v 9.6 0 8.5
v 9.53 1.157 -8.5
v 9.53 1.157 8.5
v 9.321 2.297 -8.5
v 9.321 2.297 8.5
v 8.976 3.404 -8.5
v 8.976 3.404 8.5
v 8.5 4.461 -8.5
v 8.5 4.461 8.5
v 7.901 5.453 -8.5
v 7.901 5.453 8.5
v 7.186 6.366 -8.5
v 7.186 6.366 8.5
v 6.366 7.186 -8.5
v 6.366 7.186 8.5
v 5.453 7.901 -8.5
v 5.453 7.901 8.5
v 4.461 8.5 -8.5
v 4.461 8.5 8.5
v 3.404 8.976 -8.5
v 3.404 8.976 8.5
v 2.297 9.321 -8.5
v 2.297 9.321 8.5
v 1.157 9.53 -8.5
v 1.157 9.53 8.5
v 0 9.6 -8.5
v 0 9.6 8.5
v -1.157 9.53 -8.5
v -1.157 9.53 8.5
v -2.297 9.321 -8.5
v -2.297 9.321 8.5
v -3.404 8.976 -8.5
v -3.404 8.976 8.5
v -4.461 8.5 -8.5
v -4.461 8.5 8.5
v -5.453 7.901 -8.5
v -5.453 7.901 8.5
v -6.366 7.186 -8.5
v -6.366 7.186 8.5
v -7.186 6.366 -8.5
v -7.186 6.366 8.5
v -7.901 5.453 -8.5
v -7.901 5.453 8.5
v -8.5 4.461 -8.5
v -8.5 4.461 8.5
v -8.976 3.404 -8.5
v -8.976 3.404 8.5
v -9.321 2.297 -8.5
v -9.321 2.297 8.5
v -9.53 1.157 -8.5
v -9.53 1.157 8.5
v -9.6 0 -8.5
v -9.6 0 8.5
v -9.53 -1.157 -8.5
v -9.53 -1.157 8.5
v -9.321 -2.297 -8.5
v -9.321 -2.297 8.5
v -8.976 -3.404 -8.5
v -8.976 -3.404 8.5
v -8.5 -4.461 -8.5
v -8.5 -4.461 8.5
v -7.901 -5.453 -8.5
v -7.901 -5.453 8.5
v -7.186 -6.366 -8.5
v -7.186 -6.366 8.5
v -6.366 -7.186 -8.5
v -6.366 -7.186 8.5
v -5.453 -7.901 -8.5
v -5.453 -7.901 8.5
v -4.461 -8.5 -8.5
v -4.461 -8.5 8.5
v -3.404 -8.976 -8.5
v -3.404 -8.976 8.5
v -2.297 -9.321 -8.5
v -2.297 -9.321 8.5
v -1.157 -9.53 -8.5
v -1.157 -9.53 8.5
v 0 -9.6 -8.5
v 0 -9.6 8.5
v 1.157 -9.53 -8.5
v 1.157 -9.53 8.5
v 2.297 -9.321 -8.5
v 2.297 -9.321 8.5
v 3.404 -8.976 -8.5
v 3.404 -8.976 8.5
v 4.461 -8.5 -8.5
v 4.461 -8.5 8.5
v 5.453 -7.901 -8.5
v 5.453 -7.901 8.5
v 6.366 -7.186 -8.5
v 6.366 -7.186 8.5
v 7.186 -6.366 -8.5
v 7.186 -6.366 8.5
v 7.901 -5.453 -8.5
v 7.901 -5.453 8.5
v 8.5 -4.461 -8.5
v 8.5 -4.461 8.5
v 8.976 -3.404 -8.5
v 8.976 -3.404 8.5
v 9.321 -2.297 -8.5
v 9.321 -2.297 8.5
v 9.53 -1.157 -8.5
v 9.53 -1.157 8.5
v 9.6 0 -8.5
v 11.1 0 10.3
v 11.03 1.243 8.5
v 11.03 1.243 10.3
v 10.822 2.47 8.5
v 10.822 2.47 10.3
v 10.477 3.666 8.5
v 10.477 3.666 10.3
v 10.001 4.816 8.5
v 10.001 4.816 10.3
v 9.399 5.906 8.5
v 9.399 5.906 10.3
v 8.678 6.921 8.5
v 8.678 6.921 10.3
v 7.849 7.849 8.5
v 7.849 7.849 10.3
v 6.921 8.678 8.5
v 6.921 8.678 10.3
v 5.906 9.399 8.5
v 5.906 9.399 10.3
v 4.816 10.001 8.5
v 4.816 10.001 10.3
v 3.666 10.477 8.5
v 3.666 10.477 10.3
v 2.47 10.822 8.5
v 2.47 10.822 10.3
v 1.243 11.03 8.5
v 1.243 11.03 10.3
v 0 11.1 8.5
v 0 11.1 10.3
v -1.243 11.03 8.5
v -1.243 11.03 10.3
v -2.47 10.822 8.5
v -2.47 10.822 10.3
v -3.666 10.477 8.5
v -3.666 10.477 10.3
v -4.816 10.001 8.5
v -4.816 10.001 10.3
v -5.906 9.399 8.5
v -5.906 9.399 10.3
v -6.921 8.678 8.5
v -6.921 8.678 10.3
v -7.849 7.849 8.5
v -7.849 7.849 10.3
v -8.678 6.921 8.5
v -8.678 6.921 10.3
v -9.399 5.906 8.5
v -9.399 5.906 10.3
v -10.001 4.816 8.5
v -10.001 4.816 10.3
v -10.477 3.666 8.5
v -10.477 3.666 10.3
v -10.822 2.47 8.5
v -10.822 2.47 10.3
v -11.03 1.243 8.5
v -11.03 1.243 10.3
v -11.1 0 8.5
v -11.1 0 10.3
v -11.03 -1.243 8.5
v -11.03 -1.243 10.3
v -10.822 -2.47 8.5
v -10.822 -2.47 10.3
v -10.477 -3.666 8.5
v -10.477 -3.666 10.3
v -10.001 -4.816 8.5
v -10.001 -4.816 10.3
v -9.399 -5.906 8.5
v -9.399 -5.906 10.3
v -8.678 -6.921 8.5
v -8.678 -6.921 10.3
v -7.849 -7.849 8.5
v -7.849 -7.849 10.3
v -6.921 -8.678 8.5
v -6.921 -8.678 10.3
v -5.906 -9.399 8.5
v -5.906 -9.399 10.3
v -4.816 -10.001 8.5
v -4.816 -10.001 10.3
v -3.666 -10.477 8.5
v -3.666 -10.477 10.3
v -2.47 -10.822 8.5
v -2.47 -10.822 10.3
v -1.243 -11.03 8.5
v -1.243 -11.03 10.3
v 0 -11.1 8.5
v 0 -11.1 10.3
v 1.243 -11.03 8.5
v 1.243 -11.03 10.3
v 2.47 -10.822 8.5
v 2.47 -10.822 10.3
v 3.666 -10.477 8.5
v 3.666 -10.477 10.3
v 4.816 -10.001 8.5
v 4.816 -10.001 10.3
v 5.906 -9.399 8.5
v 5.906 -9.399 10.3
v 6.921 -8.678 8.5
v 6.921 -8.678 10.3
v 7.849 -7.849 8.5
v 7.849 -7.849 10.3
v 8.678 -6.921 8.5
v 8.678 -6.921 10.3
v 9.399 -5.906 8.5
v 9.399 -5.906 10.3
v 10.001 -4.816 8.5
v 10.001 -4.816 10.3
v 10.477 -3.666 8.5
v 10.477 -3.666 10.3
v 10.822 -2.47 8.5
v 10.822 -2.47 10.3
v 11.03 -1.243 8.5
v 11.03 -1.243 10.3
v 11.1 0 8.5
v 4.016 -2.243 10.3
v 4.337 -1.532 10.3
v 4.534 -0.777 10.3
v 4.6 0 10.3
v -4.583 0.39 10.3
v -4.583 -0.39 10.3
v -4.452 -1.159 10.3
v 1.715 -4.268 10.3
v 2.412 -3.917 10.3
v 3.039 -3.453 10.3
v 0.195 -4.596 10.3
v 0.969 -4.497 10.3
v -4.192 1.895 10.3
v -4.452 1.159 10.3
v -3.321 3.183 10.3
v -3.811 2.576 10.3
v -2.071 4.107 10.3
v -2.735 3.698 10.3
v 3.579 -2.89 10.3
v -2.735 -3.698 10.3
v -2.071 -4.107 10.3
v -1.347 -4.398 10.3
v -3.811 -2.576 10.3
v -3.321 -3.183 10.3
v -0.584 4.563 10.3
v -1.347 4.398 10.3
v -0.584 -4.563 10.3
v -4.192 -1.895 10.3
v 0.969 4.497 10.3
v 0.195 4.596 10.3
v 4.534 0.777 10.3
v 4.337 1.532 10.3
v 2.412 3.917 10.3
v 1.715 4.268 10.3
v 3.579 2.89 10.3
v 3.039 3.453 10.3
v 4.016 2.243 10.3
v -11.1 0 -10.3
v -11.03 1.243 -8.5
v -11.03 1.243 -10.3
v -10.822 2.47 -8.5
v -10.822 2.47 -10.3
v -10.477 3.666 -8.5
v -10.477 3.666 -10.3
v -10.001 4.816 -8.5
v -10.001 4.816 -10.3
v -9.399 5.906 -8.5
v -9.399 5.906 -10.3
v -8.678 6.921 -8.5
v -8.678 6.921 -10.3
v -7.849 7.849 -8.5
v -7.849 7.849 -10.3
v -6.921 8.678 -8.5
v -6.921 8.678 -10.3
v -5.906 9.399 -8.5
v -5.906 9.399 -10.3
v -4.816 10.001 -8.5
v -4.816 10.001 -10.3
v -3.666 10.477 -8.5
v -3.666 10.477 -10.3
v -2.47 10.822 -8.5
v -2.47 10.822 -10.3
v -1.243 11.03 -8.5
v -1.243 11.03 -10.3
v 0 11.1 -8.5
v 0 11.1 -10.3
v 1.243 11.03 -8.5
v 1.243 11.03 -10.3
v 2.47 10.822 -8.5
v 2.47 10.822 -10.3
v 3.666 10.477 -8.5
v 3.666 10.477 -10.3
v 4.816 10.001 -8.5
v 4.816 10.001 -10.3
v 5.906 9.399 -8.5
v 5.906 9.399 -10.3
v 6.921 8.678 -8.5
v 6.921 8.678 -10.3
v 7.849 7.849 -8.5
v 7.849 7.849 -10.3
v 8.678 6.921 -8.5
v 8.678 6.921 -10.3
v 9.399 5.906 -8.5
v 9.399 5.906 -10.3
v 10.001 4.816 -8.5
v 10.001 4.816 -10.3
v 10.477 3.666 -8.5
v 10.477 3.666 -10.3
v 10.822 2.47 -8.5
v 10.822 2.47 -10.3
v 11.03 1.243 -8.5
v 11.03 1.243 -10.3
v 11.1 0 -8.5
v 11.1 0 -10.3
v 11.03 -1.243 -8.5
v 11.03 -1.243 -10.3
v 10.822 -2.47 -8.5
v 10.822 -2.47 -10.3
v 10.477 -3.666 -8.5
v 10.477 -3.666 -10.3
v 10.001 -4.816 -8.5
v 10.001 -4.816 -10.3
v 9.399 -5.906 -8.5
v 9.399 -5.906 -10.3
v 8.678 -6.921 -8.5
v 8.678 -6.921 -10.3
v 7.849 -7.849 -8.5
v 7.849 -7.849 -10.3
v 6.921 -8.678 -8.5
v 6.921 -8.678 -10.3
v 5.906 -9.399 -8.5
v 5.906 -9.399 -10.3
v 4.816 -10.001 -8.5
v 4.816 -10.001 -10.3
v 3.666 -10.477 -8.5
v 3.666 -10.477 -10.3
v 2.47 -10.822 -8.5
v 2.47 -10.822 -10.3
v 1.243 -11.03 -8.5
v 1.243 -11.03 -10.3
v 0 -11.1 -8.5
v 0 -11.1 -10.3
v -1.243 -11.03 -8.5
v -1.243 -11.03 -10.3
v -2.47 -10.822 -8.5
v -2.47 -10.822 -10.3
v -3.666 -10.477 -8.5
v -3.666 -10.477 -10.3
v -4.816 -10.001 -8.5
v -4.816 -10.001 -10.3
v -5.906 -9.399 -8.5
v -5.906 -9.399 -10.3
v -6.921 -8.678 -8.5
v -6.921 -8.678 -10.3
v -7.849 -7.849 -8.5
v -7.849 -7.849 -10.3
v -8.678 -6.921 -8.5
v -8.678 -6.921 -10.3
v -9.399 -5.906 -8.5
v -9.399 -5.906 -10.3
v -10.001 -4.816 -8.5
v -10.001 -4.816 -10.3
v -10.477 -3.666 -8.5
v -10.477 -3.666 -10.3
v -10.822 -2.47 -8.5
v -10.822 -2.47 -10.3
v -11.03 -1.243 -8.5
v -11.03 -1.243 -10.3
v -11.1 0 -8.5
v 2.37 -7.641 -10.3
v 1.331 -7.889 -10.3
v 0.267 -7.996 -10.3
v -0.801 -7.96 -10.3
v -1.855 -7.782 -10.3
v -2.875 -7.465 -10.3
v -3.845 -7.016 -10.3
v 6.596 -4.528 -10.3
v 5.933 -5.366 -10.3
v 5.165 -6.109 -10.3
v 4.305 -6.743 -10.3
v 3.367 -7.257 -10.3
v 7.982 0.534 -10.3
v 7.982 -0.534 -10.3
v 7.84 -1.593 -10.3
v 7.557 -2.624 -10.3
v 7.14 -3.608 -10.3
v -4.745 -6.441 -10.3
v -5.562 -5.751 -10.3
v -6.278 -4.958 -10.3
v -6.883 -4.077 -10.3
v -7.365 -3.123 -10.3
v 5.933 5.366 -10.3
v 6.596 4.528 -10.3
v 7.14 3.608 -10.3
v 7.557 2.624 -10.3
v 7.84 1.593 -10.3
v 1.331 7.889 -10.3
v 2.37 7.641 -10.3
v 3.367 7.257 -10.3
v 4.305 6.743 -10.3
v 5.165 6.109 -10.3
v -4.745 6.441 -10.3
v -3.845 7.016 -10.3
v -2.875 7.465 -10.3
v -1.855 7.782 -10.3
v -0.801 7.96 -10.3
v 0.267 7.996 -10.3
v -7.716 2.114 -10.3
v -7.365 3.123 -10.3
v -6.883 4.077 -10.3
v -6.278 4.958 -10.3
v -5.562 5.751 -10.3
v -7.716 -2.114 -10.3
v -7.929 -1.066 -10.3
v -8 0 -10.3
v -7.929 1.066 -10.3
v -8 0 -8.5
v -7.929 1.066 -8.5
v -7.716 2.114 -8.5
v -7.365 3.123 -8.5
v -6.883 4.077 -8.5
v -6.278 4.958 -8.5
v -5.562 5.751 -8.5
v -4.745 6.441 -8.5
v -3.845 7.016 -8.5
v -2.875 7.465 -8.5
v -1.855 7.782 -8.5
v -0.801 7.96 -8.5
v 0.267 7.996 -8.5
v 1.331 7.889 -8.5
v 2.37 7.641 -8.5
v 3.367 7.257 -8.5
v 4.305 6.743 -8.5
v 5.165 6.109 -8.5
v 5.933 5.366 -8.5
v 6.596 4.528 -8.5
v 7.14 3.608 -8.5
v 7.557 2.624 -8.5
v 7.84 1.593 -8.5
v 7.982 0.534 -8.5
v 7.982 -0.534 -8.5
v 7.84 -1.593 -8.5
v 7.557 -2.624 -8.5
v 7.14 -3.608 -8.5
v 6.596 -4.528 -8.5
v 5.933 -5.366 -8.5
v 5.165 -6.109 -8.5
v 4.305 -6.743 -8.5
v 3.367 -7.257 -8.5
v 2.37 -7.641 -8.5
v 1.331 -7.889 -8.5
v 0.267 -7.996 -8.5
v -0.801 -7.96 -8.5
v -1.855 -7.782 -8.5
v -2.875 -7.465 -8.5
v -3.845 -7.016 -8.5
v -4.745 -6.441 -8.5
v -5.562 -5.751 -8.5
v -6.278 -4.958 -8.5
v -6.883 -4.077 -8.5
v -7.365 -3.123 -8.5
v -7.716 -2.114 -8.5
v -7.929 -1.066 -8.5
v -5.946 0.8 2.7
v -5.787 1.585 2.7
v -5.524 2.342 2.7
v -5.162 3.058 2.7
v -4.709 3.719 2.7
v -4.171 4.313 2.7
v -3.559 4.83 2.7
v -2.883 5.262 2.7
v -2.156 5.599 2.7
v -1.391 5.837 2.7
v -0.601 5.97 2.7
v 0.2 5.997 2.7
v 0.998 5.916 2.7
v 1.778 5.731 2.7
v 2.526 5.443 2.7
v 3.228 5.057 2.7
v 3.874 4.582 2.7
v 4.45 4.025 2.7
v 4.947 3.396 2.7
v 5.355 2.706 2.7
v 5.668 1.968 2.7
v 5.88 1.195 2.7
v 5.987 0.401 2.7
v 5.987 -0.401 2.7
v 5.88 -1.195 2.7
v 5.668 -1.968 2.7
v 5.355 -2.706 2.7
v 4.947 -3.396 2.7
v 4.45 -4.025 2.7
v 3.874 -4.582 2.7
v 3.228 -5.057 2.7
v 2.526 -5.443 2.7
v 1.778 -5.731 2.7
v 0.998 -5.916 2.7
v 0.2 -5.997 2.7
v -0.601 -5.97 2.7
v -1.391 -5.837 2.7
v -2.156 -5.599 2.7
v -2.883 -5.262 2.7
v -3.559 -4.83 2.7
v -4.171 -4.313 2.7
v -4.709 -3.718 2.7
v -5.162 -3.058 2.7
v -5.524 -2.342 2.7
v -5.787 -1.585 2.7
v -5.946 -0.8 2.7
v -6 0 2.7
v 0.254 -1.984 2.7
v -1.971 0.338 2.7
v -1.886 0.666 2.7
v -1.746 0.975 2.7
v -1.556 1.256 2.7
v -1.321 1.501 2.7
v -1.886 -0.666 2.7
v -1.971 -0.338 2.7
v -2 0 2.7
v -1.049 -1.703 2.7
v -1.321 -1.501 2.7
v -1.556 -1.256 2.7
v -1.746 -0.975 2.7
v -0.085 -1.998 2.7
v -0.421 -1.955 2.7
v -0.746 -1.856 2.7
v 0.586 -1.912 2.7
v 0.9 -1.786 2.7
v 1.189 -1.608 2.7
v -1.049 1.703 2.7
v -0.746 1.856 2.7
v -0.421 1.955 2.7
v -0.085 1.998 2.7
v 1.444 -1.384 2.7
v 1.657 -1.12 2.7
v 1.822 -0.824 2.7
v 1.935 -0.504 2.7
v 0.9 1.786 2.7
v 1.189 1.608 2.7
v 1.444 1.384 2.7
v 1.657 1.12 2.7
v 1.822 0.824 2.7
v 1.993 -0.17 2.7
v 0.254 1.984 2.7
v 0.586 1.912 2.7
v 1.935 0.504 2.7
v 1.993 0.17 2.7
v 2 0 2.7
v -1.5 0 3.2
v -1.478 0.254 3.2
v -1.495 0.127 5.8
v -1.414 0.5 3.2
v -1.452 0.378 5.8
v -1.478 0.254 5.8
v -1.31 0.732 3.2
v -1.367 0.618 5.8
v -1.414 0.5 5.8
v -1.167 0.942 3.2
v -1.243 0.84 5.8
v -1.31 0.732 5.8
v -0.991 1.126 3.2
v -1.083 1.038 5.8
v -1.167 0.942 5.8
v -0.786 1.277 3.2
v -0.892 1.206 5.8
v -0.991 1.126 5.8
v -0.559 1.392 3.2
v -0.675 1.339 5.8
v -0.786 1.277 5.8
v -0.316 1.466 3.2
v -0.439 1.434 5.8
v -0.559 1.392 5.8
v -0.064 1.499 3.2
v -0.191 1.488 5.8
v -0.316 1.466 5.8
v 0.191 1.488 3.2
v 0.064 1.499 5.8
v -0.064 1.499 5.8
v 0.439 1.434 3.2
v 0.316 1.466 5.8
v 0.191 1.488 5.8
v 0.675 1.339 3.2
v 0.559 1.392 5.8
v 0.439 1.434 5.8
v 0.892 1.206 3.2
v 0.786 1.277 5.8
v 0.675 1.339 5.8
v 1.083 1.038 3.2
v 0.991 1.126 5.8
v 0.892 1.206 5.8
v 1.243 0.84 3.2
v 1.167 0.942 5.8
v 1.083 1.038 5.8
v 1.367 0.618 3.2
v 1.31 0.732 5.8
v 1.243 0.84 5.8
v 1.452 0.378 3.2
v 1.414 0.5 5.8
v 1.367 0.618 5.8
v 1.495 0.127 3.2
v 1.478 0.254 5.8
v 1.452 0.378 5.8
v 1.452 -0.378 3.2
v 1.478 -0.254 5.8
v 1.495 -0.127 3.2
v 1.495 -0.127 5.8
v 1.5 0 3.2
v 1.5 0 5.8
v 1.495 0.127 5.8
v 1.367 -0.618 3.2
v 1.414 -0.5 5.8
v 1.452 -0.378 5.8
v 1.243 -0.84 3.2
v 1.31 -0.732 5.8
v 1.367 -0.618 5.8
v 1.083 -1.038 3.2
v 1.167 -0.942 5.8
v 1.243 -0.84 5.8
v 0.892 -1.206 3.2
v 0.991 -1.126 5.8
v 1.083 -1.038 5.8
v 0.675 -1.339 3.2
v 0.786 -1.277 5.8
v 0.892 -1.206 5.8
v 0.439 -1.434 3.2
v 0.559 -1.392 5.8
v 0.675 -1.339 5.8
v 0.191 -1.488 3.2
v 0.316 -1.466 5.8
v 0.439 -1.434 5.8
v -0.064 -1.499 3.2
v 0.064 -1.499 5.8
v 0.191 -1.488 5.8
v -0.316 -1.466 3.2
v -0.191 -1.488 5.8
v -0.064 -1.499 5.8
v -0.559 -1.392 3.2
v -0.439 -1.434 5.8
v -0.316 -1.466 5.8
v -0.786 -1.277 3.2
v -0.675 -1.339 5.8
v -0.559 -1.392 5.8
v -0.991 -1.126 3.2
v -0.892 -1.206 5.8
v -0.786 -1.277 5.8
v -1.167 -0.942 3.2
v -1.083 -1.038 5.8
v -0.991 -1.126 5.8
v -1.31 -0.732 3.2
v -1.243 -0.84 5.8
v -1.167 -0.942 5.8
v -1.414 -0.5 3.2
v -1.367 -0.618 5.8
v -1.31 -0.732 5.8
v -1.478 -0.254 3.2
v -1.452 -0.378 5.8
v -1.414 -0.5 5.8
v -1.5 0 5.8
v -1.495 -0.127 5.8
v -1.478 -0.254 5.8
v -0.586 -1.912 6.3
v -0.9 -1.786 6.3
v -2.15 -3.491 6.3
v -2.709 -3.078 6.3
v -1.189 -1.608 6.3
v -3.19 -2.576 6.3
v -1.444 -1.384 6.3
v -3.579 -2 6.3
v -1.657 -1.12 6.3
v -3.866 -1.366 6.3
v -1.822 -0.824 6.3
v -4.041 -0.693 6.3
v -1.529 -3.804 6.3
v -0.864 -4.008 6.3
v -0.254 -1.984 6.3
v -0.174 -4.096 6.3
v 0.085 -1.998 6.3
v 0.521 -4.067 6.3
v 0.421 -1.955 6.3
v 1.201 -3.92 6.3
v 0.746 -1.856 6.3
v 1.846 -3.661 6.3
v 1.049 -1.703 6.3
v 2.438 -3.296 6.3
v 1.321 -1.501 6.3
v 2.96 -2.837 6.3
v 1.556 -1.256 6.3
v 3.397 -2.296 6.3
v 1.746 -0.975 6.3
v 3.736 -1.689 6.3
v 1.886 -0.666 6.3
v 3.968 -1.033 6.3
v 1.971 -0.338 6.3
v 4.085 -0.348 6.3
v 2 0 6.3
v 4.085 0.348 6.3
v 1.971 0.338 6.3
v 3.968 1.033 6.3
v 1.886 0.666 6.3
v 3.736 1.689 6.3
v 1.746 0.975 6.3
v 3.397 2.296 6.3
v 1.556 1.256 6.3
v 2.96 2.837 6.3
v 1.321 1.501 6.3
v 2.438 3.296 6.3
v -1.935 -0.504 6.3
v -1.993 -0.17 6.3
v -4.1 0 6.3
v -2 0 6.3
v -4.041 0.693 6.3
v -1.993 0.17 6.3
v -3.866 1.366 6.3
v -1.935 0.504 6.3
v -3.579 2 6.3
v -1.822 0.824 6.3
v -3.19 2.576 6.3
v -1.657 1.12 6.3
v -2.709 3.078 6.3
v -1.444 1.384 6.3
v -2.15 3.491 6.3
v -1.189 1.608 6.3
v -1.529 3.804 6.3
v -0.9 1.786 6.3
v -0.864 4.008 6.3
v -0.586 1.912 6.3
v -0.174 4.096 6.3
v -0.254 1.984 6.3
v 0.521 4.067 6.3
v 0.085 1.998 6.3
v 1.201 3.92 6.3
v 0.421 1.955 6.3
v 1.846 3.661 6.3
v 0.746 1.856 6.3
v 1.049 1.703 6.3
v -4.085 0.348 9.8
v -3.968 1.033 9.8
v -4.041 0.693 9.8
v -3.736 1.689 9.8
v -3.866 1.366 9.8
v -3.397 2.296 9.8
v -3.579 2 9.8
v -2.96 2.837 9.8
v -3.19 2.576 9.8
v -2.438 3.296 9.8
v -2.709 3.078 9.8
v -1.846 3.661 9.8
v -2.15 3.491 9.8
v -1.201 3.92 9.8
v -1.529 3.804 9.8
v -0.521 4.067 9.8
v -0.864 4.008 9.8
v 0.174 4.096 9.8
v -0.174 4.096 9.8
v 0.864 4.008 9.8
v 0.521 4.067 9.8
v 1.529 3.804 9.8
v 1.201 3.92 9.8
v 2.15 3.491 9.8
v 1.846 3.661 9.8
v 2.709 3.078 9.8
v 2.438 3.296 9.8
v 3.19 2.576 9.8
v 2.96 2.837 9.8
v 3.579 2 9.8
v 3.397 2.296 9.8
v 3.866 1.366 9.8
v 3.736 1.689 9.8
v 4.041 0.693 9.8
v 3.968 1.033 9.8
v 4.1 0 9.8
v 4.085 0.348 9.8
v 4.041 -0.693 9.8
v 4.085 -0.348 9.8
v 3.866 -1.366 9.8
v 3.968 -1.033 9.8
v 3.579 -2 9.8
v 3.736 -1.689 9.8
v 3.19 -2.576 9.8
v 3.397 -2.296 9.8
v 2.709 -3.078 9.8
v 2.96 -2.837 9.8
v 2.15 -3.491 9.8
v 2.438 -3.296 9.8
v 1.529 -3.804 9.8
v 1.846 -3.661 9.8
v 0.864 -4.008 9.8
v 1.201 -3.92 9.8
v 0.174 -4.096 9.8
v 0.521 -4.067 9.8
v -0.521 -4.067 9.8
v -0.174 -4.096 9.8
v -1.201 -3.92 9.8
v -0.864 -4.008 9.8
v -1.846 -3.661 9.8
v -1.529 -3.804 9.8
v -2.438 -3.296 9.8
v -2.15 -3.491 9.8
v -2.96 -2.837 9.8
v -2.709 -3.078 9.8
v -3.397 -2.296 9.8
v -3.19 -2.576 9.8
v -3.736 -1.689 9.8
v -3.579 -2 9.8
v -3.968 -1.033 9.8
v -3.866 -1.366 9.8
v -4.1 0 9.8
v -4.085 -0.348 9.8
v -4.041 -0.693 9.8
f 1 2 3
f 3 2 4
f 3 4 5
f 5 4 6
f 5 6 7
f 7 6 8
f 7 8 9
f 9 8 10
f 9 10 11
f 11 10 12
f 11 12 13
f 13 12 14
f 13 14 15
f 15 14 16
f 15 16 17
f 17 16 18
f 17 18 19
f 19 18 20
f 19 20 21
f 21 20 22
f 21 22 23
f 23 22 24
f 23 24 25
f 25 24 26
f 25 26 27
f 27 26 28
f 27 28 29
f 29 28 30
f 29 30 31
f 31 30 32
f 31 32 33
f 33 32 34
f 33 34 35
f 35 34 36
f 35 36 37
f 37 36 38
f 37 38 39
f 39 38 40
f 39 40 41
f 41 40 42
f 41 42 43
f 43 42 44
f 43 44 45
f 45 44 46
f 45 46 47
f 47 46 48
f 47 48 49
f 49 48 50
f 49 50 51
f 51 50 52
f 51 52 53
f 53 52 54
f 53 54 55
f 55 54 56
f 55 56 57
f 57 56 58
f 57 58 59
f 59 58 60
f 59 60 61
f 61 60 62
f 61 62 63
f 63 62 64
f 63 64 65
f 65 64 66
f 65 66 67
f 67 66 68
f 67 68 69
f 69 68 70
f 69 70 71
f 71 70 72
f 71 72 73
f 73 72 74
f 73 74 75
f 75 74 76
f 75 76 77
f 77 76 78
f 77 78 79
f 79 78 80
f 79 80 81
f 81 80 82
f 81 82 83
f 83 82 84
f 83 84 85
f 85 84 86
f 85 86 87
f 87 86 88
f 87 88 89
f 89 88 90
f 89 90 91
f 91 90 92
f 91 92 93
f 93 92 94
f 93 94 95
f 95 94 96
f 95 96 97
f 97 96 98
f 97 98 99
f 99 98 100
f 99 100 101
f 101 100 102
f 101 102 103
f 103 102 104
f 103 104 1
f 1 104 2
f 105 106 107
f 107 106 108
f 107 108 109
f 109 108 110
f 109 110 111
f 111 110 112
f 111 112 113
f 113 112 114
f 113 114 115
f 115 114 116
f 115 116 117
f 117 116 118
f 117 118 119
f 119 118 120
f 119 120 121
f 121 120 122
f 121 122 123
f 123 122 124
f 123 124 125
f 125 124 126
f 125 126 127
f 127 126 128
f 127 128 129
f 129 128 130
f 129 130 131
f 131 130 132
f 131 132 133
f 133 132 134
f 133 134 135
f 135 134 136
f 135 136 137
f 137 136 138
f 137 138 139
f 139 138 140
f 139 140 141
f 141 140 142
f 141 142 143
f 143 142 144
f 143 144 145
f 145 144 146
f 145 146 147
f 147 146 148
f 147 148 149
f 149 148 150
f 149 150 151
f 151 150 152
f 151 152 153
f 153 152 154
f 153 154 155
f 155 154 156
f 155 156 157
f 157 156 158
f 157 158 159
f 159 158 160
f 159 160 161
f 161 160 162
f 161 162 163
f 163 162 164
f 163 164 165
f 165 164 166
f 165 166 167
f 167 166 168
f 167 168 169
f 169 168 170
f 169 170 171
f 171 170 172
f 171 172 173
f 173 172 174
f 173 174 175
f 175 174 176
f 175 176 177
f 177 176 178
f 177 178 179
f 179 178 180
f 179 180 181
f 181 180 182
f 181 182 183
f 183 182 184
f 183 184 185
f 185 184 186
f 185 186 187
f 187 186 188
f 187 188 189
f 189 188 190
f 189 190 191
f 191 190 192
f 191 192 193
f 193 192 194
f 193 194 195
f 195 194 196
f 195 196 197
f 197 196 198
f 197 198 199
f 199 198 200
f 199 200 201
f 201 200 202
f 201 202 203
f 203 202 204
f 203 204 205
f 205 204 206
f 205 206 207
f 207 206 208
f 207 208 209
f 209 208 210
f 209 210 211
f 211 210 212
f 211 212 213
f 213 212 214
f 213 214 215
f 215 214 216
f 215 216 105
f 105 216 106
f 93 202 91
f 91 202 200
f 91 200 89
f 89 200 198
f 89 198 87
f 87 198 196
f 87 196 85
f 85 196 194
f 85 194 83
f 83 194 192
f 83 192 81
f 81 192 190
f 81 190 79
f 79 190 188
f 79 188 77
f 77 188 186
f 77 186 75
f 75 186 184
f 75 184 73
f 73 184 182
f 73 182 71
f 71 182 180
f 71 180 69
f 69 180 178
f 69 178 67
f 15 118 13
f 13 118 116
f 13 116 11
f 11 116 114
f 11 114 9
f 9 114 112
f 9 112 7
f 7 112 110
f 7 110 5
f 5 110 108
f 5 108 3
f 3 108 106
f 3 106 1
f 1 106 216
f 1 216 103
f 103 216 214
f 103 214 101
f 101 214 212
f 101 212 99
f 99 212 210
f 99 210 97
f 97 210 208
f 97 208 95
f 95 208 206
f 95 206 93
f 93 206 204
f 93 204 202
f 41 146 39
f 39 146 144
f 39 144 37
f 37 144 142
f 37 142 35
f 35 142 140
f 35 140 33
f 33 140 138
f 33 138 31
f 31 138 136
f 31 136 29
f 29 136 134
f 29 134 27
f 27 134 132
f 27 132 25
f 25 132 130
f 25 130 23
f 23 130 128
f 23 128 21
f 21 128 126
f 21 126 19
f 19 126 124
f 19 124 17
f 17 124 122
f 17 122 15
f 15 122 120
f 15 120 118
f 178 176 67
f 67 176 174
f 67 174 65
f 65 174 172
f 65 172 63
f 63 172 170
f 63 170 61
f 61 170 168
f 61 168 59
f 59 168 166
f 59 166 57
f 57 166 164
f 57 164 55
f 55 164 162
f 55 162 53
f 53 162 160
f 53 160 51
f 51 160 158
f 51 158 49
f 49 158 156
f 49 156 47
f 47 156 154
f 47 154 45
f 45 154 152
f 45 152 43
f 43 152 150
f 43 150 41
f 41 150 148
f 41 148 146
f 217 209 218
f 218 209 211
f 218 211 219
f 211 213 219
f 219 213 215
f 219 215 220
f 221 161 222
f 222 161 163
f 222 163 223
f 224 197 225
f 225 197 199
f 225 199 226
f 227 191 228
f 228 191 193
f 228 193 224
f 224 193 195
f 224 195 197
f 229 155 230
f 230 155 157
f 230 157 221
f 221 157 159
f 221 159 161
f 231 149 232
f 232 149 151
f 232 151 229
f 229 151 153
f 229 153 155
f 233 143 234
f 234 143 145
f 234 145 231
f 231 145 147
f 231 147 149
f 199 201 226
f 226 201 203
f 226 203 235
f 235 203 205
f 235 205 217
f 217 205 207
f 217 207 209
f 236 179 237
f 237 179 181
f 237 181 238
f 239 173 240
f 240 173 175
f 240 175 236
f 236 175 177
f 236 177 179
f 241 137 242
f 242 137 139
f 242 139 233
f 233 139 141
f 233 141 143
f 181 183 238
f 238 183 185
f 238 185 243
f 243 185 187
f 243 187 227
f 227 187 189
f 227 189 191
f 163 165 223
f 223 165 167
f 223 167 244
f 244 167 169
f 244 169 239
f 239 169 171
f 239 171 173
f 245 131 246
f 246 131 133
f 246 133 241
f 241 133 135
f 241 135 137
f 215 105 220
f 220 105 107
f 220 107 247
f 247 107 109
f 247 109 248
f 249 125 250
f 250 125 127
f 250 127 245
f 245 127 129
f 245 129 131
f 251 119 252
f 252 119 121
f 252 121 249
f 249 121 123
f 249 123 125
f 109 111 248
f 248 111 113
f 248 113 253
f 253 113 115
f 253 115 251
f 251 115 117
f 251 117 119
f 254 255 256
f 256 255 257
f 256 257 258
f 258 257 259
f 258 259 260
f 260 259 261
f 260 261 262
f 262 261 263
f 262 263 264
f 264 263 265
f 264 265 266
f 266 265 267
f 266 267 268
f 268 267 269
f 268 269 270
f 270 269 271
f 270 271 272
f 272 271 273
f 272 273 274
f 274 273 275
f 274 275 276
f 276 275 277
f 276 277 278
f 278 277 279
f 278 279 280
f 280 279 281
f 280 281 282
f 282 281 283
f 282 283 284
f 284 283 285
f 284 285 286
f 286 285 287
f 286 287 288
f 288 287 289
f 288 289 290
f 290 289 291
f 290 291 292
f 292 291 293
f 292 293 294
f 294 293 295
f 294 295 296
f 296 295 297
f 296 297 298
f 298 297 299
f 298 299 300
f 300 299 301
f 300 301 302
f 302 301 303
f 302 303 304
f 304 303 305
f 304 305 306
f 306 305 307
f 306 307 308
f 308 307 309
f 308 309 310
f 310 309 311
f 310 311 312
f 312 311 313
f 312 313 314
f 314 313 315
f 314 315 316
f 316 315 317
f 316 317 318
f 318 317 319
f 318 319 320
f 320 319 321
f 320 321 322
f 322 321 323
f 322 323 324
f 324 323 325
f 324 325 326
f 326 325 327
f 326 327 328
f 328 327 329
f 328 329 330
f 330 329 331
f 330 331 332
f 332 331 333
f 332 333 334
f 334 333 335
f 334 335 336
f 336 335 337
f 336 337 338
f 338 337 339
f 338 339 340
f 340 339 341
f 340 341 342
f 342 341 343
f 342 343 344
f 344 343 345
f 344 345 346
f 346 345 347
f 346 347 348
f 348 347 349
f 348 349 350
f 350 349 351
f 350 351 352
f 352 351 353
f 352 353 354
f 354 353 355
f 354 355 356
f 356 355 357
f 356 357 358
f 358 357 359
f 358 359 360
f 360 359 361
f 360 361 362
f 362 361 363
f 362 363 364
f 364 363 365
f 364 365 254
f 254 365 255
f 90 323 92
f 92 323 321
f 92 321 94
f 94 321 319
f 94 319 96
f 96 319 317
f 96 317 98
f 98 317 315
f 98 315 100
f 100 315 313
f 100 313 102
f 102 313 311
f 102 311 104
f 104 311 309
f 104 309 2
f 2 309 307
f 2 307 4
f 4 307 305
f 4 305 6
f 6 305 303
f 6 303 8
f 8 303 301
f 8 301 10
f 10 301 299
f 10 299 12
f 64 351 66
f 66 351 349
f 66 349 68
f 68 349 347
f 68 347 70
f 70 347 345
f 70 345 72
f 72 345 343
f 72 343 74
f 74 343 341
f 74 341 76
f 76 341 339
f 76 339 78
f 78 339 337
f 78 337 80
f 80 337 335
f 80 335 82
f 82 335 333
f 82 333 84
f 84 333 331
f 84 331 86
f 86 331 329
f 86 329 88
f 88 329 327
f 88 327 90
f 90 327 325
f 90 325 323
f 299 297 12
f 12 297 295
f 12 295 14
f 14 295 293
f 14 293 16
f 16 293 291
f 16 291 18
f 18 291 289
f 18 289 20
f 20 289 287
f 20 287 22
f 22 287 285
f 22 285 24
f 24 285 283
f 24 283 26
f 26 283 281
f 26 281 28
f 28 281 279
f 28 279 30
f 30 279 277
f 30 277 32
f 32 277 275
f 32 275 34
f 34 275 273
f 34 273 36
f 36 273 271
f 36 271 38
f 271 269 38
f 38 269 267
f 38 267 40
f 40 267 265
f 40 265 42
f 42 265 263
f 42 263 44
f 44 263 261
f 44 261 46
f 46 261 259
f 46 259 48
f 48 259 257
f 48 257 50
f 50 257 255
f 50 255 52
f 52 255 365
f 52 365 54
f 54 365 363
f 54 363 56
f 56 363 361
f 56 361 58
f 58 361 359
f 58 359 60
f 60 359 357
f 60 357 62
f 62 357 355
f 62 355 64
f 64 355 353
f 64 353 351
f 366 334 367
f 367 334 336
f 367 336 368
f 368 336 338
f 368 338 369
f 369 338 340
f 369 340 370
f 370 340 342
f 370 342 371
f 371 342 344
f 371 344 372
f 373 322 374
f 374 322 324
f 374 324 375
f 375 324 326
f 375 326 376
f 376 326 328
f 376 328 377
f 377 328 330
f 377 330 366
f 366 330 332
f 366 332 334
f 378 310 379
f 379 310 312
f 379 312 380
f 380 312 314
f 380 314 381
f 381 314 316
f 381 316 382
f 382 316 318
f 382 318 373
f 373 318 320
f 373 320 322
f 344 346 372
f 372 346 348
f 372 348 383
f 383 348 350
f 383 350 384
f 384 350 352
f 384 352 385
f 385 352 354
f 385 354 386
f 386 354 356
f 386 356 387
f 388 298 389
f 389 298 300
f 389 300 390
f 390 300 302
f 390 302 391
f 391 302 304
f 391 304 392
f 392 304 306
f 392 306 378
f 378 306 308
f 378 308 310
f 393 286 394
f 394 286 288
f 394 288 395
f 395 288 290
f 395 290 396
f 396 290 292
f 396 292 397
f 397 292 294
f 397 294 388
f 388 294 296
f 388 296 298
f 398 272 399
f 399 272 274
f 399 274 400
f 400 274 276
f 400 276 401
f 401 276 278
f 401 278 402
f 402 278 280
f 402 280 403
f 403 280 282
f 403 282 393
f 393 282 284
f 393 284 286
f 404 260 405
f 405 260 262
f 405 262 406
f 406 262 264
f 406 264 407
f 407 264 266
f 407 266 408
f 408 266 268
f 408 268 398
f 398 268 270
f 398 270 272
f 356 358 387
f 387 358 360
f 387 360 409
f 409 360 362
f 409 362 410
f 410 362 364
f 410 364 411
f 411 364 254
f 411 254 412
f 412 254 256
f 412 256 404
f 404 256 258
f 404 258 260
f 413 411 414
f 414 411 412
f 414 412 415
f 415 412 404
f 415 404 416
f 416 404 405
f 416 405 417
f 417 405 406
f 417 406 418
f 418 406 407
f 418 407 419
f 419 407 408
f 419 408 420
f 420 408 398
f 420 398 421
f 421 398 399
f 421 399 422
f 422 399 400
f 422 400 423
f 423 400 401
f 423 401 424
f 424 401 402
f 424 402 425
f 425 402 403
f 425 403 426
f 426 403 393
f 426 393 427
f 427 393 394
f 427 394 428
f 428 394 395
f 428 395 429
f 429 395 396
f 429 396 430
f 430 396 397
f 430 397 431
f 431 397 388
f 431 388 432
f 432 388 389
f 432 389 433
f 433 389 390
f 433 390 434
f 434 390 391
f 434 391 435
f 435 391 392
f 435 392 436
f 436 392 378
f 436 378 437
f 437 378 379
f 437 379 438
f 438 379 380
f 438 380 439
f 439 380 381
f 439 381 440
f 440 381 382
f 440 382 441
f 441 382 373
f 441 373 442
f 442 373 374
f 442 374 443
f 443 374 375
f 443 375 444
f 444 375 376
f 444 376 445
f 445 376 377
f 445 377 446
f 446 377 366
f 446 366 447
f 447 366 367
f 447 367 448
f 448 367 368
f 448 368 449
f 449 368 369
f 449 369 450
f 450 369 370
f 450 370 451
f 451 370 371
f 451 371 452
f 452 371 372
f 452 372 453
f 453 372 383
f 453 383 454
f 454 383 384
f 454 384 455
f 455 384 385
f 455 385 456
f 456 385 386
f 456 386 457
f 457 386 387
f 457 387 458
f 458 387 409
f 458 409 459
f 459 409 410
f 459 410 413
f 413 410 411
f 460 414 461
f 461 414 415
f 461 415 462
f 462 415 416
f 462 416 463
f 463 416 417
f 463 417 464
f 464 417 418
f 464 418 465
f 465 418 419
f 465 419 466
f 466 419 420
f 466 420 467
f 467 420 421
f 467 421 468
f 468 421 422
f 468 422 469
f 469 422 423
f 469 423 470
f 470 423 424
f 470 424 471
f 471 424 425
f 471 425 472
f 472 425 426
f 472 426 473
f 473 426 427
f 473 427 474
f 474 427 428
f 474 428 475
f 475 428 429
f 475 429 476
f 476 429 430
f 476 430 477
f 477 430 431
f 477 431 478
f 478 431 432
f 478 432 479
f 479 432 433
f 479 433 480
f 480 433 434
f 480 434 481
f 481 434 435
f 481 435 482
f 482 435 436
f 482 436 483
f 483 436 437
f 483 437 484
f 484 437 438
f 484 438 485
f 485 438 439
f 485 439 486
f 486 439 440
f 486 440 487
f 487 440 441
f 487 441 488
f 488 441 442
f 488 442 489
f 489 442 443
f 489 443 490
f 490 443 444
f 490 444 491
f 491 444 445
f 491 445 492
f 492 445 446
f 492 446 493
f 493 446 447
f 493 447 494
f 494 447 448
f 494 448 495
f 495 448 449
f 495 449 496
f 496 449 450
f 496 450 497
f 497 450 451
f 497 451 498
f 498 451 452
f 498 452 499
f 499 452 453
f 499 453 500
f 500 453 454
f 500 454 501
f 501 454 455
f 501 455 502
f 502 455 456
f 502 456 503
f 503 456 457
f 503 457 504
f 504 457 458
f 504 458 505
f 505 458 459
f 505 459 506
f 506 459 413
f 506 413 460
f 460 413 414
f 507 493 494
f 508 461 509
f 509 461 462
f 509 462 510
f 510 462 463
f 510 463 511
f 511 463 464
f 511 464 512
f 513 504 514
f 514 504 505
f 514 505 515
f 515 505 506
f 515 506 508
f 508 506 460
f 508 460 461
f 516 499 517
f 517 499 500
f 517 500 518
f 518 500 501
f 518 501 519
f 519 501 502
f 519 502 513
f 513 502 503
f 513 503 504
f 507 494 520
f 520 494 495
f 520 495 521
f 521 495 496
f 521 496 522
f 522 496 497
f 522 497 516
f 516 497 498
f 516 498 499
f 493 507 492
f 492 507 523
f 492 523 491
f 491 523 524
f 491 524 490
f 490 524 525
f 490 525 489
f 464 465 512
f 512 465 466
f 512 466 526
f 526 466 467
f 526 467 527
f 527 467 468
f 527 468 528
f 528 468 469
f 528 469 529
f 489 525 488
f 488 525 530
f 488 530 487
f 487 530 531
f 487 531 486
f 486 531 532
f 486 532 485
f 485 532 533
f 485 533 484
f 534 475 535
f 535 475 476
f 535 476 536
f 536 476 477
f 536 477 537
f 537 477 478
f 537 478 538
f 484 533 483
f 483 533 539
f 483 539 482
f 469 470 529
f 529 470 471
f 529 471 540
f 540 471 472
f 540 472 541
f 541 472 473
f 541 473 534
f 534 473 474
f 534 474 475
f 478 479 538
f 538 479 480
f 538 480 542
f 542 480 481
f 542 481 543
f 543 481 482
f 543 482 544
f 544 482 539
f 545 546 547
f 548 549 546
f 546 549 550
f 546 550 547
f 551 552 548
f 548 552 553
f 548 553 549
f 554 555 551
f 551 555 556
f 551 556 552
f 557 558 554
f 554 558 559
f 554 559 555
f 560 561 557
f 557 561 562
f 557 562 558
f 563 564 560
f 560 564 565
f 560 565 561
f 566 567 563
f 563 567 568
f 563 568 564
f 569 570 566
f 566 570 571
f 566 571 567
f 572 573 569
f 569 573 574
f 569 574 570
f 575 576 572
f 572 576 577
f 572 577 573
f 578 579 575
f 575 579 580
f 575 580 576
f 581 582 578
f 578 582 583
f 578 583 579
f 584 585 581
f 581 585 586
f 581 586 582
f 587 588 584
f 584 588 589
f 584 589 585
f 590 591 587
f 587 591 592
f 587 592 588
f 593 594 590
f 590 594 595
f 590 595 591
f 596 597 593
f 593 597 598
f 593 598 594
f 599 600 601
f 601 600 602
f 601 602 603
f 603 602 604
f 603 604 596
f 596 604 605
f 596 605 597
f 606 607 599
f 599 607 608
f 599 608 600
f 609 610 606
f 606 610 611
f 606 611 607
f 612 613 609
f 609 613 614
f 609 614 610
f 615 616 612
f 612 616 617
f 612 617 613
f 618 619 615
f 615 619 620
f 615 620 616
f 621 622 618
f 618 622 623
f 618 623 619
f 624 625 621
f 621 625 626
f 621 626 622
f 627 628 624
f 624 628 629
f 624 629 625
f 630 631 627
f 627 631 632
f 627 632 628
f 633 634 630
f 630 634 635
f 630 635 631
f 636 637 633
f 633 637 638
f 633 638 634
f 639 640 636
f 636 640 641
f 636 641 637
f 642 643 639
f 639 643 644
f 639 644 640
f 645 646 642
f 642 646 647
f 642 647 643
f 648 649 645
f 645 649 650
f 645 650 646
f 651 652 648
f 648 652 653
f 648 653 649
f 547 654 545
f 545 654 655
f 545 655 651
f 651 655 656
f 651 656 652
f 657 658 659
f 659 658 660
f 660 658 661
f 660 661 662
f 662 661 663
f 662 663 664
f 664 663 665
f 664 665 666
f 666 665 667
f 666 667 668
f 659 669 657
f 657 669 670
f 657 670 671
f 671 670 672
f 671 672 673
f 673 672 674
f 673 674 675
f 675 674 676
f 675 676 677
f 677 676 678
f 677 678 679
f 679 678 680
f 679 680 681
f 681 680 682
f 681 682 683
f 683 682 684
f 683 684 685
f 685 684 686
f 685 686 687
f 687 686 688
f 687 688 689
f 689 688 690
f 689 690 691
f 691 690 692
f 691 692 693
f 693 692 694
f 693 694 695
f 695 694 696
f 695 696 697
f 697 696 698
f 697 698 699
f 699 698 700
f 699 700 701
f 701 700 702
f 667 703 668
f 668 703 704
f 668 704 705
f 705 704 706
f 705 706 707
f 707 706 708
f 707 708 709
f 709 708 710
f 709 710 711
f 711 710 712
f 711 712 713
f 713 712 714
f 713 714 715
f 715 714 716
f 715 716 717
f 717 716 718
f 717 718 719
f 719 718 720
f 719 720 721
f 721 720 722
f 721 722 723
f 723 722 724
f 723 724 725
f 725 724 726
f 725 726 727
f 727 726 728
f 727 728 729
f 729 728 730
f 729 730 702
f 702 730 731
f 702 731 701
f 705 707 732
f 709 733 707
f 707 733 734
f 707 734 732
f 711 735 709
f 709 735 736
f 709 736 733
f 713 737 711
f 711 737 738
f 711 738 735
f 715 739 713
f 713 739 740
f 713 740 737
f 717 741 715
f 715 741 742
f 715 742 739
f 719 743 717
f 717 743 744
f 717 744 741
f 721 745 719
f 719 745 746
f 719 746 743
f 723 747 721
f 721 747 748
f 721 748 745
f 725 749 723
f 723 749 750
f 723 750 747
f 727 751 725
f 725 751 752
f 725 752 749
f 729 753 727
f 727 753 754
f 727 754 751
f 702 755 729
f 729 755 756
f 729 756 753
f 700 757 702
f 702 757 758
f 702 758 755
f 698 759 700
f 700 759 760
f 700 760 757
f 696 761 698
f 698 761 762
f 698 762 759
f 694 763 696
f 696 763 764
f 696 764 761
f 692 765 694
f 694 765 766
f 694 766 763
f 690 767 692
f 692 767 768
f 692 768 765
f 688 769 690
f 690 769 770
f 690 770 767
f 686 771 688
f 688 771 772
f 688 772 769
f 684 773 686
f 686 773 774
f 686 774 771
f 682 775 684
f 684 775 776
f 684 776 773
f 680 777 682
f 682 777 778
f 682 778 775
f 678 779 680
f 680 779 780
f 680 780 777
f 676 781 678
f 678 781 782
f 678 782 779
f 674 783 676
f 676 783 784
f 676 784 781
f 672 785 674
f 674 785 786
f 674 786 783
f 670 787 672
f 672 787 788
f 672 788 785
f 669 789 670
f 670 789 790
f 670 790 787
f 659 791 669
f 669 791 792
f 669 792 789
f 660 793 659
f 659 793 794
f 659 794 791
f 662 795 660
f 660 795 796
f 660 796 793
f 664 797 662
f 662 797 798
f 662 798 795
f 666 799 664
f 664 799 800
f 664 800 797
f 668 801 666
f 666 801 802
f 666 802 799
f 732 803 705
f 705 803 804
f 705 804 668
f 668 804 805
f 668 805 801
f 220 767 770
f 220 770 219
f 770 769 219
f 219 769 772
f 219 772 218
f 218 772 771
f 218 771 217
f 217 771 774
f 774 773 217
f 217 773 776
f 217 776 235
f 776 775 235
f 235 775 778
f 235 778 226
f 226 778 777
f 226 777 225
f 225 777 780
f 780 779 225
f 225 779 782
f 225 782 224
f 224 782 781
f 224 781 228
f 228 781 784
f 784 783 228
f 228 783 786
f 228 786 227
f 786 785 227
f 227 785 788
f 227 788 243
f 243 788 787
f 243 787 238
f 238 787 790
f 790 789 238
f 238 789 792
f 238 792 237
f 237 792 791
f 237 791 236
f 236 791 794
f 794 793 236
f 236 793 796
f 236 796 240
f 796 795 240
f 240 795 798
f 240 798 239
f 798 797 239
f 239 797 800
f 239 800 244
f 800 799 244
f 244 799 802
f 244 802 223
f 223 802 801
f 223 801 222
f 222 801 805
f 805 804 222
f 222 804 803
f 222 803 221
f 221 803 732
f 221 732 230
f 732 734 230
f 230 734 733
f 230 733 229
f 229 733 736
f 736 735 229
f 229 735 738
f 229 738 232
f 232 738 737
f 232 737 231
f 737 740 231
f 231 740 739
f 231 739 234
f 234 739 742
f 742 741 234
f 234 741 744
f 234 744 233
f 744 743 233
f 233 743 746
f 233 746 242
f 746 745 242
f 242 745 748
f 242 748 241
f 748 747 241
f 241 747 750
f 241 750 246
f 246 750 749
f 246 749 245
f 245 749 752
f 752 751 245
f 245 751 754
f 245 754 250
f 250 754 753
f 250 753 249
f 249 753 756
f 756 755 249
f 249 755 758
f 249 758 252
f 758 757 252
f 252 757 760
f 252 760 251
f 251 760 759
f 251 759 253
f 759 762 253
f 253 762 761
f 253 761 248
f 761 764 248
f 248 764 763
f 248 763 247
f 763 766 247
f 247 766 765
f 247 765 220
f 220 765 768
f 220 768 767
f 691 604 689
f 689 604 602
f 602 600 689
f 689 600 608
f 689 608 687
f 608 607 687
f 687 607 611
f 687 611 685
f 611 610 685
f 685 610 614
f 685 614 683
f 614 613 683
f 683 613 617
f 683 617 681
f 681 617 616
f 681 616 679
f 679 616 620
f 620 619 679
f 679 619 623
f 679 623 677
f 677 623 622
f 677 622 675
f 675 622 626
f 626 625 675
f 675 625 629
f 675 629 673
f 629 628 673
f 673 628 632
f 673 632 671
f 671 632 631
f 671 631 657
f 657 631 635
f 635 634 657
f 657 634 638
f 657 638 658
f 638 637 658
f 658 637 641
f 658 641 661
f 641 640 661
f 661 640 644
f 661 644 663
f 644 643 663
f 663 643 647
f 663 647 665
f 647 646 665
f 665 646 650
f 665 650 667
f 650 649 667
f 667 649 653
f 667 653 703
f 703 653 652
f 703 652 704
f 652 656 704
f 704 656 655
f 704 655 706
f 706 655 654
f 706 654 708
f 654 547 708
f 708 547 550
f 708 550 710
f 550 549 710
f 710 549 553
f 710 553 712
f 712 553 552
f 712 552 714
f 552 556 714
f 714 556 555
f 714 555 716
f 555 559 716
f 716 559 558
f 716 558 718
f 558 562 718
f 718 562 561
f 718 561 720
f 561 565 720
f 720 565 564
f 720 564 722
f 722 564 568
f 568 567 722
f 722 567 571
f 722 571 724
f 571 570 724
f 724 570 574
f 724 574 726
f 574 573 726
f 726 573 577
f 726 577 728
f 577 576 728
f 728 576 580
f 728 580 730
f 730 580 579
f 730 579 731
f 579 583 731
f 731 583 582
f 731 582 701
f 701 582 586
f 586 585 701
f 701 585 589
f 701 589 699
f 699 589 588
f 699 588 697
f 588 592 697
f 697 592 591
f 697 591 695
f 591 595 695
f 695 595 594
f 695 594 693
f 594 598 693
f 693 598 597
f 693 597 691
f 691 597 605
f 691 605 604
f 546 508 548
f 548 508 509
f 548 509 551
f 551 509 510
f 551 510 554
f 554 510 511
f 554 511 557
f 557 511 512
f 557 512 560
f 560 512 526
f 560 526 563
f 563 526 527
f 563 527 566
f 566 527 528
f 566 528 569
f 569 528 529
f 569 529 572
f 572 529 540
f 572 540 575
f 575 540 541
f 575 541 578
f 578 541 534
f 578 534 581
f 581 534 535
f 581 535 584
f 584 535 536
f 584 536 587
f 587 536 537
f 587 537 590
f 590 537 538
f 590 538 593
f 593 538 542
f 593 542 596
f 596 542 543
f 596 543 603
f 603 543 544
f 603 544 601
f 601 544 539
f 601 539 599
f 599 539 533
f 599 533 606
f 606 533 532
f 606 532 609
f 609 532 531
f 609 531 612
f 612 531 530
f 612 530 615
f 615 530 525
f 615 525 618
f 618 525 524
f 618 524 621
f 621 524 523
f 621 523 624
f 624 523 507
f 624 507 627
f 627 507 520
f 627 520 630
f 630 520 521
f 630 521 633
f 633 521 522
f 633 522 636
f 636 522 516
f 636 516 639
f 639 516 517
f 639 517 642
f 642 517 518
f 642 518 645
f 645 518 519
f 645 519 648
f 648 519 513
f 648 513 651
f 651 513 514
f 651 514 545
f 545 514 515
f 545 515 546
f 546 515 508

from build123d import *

# Parameters (mm, degrees)
AUFSATZ_LINEAR_AUSTRAGEN1_DEPTH      = 10.3
AUFSATZ_LINEAR_AUSTRAGEN1_DEPTH_BACK = 10.3
SKIZZE1_R                            = 9.6
SKIZZE2_R                            = 11.1
AUFSATZ_LINEAR_AUSTRAGEN2_DEPTH      = 1.8
AUFSATZ_LINEAR_START                 = -1.8
SKIZZE3_R                            = 11.1
AUFSATZ_LINEAR_AUSTRAGEN3_DEPTH      = 1.8
FASE1_SIZE                           = 0.5


with BuildPart() as part:
    # Skizze1 → Aufsatz-Linear austragen1 (new, two sides: drawn at the far end of the back side and taken through both)
    with BuildSketch(Plane.XY.offset(-AUFSATZ_LINEAR_AUSTRAGEN1_DEPTH_BACK)):
        Circle(SKIZZE1_R)
    extrude(amount=AUFSATZ_LINEAR_AUSTRAGEN1_DEPTH + AUFSATZ_LINEAR_AUSTRAGEN1_DEPTH_BACK)

    # Skizze2 → Aufsatz-Linear austragen2 (add)
    with BuildSketch(Plane.XY.offset(10.3)):
        Circle(SKIZZE2_R)
    extrude(amount=-AUFSATZ_LINEAR_AUSTRAGEN2_DEPTH)

    # Skizze3 → Aufsatz-Linear austragen3 (add)
    with BuildSketch(Plane(origin=(0, 0, -10.3), x_dir=(-1, 0, 0), z_dir=(0, 0, -1)).offset(AUFSATZ_LINEAR_START)):
        Circle(SKIZZE3_R)
    extrude(amount=AUFSATZ_LINEAR_AUSTRAGEN3_DEPTH)

    # Skizze8 → Schnitt-Rotation1 (revolve, cut)
    with BuildSketch(Plane(origin=(0, 0, 0), x_dir=(0, 0, -1), z_dir=(1, 0, 0))):
        Polygon((10.3, 0), (10.3, 8), (8.5, 8), (-2.7, 6), (-2.7, 1.5), (-6.3, 1.5), (-6.3, 4.1), (-10.3, 4.1), (-10.3, 0), align=None)
    revolve(axis=Axis((0, 0, -9.8), (0, 0, 1)), mode=Mode.SUBTRACT)

    # Fase1
    fase1_edges = [part.edges().sort_by_distance(p)[0] for p in [
        (0, -1.5, 6.3),
        (0, -1.5, 2.7),
        (0, -4.1, 10.3),
    ]]
    chamfer(fase1_edges, length=FASE1_SIZE)


solid = part.part
